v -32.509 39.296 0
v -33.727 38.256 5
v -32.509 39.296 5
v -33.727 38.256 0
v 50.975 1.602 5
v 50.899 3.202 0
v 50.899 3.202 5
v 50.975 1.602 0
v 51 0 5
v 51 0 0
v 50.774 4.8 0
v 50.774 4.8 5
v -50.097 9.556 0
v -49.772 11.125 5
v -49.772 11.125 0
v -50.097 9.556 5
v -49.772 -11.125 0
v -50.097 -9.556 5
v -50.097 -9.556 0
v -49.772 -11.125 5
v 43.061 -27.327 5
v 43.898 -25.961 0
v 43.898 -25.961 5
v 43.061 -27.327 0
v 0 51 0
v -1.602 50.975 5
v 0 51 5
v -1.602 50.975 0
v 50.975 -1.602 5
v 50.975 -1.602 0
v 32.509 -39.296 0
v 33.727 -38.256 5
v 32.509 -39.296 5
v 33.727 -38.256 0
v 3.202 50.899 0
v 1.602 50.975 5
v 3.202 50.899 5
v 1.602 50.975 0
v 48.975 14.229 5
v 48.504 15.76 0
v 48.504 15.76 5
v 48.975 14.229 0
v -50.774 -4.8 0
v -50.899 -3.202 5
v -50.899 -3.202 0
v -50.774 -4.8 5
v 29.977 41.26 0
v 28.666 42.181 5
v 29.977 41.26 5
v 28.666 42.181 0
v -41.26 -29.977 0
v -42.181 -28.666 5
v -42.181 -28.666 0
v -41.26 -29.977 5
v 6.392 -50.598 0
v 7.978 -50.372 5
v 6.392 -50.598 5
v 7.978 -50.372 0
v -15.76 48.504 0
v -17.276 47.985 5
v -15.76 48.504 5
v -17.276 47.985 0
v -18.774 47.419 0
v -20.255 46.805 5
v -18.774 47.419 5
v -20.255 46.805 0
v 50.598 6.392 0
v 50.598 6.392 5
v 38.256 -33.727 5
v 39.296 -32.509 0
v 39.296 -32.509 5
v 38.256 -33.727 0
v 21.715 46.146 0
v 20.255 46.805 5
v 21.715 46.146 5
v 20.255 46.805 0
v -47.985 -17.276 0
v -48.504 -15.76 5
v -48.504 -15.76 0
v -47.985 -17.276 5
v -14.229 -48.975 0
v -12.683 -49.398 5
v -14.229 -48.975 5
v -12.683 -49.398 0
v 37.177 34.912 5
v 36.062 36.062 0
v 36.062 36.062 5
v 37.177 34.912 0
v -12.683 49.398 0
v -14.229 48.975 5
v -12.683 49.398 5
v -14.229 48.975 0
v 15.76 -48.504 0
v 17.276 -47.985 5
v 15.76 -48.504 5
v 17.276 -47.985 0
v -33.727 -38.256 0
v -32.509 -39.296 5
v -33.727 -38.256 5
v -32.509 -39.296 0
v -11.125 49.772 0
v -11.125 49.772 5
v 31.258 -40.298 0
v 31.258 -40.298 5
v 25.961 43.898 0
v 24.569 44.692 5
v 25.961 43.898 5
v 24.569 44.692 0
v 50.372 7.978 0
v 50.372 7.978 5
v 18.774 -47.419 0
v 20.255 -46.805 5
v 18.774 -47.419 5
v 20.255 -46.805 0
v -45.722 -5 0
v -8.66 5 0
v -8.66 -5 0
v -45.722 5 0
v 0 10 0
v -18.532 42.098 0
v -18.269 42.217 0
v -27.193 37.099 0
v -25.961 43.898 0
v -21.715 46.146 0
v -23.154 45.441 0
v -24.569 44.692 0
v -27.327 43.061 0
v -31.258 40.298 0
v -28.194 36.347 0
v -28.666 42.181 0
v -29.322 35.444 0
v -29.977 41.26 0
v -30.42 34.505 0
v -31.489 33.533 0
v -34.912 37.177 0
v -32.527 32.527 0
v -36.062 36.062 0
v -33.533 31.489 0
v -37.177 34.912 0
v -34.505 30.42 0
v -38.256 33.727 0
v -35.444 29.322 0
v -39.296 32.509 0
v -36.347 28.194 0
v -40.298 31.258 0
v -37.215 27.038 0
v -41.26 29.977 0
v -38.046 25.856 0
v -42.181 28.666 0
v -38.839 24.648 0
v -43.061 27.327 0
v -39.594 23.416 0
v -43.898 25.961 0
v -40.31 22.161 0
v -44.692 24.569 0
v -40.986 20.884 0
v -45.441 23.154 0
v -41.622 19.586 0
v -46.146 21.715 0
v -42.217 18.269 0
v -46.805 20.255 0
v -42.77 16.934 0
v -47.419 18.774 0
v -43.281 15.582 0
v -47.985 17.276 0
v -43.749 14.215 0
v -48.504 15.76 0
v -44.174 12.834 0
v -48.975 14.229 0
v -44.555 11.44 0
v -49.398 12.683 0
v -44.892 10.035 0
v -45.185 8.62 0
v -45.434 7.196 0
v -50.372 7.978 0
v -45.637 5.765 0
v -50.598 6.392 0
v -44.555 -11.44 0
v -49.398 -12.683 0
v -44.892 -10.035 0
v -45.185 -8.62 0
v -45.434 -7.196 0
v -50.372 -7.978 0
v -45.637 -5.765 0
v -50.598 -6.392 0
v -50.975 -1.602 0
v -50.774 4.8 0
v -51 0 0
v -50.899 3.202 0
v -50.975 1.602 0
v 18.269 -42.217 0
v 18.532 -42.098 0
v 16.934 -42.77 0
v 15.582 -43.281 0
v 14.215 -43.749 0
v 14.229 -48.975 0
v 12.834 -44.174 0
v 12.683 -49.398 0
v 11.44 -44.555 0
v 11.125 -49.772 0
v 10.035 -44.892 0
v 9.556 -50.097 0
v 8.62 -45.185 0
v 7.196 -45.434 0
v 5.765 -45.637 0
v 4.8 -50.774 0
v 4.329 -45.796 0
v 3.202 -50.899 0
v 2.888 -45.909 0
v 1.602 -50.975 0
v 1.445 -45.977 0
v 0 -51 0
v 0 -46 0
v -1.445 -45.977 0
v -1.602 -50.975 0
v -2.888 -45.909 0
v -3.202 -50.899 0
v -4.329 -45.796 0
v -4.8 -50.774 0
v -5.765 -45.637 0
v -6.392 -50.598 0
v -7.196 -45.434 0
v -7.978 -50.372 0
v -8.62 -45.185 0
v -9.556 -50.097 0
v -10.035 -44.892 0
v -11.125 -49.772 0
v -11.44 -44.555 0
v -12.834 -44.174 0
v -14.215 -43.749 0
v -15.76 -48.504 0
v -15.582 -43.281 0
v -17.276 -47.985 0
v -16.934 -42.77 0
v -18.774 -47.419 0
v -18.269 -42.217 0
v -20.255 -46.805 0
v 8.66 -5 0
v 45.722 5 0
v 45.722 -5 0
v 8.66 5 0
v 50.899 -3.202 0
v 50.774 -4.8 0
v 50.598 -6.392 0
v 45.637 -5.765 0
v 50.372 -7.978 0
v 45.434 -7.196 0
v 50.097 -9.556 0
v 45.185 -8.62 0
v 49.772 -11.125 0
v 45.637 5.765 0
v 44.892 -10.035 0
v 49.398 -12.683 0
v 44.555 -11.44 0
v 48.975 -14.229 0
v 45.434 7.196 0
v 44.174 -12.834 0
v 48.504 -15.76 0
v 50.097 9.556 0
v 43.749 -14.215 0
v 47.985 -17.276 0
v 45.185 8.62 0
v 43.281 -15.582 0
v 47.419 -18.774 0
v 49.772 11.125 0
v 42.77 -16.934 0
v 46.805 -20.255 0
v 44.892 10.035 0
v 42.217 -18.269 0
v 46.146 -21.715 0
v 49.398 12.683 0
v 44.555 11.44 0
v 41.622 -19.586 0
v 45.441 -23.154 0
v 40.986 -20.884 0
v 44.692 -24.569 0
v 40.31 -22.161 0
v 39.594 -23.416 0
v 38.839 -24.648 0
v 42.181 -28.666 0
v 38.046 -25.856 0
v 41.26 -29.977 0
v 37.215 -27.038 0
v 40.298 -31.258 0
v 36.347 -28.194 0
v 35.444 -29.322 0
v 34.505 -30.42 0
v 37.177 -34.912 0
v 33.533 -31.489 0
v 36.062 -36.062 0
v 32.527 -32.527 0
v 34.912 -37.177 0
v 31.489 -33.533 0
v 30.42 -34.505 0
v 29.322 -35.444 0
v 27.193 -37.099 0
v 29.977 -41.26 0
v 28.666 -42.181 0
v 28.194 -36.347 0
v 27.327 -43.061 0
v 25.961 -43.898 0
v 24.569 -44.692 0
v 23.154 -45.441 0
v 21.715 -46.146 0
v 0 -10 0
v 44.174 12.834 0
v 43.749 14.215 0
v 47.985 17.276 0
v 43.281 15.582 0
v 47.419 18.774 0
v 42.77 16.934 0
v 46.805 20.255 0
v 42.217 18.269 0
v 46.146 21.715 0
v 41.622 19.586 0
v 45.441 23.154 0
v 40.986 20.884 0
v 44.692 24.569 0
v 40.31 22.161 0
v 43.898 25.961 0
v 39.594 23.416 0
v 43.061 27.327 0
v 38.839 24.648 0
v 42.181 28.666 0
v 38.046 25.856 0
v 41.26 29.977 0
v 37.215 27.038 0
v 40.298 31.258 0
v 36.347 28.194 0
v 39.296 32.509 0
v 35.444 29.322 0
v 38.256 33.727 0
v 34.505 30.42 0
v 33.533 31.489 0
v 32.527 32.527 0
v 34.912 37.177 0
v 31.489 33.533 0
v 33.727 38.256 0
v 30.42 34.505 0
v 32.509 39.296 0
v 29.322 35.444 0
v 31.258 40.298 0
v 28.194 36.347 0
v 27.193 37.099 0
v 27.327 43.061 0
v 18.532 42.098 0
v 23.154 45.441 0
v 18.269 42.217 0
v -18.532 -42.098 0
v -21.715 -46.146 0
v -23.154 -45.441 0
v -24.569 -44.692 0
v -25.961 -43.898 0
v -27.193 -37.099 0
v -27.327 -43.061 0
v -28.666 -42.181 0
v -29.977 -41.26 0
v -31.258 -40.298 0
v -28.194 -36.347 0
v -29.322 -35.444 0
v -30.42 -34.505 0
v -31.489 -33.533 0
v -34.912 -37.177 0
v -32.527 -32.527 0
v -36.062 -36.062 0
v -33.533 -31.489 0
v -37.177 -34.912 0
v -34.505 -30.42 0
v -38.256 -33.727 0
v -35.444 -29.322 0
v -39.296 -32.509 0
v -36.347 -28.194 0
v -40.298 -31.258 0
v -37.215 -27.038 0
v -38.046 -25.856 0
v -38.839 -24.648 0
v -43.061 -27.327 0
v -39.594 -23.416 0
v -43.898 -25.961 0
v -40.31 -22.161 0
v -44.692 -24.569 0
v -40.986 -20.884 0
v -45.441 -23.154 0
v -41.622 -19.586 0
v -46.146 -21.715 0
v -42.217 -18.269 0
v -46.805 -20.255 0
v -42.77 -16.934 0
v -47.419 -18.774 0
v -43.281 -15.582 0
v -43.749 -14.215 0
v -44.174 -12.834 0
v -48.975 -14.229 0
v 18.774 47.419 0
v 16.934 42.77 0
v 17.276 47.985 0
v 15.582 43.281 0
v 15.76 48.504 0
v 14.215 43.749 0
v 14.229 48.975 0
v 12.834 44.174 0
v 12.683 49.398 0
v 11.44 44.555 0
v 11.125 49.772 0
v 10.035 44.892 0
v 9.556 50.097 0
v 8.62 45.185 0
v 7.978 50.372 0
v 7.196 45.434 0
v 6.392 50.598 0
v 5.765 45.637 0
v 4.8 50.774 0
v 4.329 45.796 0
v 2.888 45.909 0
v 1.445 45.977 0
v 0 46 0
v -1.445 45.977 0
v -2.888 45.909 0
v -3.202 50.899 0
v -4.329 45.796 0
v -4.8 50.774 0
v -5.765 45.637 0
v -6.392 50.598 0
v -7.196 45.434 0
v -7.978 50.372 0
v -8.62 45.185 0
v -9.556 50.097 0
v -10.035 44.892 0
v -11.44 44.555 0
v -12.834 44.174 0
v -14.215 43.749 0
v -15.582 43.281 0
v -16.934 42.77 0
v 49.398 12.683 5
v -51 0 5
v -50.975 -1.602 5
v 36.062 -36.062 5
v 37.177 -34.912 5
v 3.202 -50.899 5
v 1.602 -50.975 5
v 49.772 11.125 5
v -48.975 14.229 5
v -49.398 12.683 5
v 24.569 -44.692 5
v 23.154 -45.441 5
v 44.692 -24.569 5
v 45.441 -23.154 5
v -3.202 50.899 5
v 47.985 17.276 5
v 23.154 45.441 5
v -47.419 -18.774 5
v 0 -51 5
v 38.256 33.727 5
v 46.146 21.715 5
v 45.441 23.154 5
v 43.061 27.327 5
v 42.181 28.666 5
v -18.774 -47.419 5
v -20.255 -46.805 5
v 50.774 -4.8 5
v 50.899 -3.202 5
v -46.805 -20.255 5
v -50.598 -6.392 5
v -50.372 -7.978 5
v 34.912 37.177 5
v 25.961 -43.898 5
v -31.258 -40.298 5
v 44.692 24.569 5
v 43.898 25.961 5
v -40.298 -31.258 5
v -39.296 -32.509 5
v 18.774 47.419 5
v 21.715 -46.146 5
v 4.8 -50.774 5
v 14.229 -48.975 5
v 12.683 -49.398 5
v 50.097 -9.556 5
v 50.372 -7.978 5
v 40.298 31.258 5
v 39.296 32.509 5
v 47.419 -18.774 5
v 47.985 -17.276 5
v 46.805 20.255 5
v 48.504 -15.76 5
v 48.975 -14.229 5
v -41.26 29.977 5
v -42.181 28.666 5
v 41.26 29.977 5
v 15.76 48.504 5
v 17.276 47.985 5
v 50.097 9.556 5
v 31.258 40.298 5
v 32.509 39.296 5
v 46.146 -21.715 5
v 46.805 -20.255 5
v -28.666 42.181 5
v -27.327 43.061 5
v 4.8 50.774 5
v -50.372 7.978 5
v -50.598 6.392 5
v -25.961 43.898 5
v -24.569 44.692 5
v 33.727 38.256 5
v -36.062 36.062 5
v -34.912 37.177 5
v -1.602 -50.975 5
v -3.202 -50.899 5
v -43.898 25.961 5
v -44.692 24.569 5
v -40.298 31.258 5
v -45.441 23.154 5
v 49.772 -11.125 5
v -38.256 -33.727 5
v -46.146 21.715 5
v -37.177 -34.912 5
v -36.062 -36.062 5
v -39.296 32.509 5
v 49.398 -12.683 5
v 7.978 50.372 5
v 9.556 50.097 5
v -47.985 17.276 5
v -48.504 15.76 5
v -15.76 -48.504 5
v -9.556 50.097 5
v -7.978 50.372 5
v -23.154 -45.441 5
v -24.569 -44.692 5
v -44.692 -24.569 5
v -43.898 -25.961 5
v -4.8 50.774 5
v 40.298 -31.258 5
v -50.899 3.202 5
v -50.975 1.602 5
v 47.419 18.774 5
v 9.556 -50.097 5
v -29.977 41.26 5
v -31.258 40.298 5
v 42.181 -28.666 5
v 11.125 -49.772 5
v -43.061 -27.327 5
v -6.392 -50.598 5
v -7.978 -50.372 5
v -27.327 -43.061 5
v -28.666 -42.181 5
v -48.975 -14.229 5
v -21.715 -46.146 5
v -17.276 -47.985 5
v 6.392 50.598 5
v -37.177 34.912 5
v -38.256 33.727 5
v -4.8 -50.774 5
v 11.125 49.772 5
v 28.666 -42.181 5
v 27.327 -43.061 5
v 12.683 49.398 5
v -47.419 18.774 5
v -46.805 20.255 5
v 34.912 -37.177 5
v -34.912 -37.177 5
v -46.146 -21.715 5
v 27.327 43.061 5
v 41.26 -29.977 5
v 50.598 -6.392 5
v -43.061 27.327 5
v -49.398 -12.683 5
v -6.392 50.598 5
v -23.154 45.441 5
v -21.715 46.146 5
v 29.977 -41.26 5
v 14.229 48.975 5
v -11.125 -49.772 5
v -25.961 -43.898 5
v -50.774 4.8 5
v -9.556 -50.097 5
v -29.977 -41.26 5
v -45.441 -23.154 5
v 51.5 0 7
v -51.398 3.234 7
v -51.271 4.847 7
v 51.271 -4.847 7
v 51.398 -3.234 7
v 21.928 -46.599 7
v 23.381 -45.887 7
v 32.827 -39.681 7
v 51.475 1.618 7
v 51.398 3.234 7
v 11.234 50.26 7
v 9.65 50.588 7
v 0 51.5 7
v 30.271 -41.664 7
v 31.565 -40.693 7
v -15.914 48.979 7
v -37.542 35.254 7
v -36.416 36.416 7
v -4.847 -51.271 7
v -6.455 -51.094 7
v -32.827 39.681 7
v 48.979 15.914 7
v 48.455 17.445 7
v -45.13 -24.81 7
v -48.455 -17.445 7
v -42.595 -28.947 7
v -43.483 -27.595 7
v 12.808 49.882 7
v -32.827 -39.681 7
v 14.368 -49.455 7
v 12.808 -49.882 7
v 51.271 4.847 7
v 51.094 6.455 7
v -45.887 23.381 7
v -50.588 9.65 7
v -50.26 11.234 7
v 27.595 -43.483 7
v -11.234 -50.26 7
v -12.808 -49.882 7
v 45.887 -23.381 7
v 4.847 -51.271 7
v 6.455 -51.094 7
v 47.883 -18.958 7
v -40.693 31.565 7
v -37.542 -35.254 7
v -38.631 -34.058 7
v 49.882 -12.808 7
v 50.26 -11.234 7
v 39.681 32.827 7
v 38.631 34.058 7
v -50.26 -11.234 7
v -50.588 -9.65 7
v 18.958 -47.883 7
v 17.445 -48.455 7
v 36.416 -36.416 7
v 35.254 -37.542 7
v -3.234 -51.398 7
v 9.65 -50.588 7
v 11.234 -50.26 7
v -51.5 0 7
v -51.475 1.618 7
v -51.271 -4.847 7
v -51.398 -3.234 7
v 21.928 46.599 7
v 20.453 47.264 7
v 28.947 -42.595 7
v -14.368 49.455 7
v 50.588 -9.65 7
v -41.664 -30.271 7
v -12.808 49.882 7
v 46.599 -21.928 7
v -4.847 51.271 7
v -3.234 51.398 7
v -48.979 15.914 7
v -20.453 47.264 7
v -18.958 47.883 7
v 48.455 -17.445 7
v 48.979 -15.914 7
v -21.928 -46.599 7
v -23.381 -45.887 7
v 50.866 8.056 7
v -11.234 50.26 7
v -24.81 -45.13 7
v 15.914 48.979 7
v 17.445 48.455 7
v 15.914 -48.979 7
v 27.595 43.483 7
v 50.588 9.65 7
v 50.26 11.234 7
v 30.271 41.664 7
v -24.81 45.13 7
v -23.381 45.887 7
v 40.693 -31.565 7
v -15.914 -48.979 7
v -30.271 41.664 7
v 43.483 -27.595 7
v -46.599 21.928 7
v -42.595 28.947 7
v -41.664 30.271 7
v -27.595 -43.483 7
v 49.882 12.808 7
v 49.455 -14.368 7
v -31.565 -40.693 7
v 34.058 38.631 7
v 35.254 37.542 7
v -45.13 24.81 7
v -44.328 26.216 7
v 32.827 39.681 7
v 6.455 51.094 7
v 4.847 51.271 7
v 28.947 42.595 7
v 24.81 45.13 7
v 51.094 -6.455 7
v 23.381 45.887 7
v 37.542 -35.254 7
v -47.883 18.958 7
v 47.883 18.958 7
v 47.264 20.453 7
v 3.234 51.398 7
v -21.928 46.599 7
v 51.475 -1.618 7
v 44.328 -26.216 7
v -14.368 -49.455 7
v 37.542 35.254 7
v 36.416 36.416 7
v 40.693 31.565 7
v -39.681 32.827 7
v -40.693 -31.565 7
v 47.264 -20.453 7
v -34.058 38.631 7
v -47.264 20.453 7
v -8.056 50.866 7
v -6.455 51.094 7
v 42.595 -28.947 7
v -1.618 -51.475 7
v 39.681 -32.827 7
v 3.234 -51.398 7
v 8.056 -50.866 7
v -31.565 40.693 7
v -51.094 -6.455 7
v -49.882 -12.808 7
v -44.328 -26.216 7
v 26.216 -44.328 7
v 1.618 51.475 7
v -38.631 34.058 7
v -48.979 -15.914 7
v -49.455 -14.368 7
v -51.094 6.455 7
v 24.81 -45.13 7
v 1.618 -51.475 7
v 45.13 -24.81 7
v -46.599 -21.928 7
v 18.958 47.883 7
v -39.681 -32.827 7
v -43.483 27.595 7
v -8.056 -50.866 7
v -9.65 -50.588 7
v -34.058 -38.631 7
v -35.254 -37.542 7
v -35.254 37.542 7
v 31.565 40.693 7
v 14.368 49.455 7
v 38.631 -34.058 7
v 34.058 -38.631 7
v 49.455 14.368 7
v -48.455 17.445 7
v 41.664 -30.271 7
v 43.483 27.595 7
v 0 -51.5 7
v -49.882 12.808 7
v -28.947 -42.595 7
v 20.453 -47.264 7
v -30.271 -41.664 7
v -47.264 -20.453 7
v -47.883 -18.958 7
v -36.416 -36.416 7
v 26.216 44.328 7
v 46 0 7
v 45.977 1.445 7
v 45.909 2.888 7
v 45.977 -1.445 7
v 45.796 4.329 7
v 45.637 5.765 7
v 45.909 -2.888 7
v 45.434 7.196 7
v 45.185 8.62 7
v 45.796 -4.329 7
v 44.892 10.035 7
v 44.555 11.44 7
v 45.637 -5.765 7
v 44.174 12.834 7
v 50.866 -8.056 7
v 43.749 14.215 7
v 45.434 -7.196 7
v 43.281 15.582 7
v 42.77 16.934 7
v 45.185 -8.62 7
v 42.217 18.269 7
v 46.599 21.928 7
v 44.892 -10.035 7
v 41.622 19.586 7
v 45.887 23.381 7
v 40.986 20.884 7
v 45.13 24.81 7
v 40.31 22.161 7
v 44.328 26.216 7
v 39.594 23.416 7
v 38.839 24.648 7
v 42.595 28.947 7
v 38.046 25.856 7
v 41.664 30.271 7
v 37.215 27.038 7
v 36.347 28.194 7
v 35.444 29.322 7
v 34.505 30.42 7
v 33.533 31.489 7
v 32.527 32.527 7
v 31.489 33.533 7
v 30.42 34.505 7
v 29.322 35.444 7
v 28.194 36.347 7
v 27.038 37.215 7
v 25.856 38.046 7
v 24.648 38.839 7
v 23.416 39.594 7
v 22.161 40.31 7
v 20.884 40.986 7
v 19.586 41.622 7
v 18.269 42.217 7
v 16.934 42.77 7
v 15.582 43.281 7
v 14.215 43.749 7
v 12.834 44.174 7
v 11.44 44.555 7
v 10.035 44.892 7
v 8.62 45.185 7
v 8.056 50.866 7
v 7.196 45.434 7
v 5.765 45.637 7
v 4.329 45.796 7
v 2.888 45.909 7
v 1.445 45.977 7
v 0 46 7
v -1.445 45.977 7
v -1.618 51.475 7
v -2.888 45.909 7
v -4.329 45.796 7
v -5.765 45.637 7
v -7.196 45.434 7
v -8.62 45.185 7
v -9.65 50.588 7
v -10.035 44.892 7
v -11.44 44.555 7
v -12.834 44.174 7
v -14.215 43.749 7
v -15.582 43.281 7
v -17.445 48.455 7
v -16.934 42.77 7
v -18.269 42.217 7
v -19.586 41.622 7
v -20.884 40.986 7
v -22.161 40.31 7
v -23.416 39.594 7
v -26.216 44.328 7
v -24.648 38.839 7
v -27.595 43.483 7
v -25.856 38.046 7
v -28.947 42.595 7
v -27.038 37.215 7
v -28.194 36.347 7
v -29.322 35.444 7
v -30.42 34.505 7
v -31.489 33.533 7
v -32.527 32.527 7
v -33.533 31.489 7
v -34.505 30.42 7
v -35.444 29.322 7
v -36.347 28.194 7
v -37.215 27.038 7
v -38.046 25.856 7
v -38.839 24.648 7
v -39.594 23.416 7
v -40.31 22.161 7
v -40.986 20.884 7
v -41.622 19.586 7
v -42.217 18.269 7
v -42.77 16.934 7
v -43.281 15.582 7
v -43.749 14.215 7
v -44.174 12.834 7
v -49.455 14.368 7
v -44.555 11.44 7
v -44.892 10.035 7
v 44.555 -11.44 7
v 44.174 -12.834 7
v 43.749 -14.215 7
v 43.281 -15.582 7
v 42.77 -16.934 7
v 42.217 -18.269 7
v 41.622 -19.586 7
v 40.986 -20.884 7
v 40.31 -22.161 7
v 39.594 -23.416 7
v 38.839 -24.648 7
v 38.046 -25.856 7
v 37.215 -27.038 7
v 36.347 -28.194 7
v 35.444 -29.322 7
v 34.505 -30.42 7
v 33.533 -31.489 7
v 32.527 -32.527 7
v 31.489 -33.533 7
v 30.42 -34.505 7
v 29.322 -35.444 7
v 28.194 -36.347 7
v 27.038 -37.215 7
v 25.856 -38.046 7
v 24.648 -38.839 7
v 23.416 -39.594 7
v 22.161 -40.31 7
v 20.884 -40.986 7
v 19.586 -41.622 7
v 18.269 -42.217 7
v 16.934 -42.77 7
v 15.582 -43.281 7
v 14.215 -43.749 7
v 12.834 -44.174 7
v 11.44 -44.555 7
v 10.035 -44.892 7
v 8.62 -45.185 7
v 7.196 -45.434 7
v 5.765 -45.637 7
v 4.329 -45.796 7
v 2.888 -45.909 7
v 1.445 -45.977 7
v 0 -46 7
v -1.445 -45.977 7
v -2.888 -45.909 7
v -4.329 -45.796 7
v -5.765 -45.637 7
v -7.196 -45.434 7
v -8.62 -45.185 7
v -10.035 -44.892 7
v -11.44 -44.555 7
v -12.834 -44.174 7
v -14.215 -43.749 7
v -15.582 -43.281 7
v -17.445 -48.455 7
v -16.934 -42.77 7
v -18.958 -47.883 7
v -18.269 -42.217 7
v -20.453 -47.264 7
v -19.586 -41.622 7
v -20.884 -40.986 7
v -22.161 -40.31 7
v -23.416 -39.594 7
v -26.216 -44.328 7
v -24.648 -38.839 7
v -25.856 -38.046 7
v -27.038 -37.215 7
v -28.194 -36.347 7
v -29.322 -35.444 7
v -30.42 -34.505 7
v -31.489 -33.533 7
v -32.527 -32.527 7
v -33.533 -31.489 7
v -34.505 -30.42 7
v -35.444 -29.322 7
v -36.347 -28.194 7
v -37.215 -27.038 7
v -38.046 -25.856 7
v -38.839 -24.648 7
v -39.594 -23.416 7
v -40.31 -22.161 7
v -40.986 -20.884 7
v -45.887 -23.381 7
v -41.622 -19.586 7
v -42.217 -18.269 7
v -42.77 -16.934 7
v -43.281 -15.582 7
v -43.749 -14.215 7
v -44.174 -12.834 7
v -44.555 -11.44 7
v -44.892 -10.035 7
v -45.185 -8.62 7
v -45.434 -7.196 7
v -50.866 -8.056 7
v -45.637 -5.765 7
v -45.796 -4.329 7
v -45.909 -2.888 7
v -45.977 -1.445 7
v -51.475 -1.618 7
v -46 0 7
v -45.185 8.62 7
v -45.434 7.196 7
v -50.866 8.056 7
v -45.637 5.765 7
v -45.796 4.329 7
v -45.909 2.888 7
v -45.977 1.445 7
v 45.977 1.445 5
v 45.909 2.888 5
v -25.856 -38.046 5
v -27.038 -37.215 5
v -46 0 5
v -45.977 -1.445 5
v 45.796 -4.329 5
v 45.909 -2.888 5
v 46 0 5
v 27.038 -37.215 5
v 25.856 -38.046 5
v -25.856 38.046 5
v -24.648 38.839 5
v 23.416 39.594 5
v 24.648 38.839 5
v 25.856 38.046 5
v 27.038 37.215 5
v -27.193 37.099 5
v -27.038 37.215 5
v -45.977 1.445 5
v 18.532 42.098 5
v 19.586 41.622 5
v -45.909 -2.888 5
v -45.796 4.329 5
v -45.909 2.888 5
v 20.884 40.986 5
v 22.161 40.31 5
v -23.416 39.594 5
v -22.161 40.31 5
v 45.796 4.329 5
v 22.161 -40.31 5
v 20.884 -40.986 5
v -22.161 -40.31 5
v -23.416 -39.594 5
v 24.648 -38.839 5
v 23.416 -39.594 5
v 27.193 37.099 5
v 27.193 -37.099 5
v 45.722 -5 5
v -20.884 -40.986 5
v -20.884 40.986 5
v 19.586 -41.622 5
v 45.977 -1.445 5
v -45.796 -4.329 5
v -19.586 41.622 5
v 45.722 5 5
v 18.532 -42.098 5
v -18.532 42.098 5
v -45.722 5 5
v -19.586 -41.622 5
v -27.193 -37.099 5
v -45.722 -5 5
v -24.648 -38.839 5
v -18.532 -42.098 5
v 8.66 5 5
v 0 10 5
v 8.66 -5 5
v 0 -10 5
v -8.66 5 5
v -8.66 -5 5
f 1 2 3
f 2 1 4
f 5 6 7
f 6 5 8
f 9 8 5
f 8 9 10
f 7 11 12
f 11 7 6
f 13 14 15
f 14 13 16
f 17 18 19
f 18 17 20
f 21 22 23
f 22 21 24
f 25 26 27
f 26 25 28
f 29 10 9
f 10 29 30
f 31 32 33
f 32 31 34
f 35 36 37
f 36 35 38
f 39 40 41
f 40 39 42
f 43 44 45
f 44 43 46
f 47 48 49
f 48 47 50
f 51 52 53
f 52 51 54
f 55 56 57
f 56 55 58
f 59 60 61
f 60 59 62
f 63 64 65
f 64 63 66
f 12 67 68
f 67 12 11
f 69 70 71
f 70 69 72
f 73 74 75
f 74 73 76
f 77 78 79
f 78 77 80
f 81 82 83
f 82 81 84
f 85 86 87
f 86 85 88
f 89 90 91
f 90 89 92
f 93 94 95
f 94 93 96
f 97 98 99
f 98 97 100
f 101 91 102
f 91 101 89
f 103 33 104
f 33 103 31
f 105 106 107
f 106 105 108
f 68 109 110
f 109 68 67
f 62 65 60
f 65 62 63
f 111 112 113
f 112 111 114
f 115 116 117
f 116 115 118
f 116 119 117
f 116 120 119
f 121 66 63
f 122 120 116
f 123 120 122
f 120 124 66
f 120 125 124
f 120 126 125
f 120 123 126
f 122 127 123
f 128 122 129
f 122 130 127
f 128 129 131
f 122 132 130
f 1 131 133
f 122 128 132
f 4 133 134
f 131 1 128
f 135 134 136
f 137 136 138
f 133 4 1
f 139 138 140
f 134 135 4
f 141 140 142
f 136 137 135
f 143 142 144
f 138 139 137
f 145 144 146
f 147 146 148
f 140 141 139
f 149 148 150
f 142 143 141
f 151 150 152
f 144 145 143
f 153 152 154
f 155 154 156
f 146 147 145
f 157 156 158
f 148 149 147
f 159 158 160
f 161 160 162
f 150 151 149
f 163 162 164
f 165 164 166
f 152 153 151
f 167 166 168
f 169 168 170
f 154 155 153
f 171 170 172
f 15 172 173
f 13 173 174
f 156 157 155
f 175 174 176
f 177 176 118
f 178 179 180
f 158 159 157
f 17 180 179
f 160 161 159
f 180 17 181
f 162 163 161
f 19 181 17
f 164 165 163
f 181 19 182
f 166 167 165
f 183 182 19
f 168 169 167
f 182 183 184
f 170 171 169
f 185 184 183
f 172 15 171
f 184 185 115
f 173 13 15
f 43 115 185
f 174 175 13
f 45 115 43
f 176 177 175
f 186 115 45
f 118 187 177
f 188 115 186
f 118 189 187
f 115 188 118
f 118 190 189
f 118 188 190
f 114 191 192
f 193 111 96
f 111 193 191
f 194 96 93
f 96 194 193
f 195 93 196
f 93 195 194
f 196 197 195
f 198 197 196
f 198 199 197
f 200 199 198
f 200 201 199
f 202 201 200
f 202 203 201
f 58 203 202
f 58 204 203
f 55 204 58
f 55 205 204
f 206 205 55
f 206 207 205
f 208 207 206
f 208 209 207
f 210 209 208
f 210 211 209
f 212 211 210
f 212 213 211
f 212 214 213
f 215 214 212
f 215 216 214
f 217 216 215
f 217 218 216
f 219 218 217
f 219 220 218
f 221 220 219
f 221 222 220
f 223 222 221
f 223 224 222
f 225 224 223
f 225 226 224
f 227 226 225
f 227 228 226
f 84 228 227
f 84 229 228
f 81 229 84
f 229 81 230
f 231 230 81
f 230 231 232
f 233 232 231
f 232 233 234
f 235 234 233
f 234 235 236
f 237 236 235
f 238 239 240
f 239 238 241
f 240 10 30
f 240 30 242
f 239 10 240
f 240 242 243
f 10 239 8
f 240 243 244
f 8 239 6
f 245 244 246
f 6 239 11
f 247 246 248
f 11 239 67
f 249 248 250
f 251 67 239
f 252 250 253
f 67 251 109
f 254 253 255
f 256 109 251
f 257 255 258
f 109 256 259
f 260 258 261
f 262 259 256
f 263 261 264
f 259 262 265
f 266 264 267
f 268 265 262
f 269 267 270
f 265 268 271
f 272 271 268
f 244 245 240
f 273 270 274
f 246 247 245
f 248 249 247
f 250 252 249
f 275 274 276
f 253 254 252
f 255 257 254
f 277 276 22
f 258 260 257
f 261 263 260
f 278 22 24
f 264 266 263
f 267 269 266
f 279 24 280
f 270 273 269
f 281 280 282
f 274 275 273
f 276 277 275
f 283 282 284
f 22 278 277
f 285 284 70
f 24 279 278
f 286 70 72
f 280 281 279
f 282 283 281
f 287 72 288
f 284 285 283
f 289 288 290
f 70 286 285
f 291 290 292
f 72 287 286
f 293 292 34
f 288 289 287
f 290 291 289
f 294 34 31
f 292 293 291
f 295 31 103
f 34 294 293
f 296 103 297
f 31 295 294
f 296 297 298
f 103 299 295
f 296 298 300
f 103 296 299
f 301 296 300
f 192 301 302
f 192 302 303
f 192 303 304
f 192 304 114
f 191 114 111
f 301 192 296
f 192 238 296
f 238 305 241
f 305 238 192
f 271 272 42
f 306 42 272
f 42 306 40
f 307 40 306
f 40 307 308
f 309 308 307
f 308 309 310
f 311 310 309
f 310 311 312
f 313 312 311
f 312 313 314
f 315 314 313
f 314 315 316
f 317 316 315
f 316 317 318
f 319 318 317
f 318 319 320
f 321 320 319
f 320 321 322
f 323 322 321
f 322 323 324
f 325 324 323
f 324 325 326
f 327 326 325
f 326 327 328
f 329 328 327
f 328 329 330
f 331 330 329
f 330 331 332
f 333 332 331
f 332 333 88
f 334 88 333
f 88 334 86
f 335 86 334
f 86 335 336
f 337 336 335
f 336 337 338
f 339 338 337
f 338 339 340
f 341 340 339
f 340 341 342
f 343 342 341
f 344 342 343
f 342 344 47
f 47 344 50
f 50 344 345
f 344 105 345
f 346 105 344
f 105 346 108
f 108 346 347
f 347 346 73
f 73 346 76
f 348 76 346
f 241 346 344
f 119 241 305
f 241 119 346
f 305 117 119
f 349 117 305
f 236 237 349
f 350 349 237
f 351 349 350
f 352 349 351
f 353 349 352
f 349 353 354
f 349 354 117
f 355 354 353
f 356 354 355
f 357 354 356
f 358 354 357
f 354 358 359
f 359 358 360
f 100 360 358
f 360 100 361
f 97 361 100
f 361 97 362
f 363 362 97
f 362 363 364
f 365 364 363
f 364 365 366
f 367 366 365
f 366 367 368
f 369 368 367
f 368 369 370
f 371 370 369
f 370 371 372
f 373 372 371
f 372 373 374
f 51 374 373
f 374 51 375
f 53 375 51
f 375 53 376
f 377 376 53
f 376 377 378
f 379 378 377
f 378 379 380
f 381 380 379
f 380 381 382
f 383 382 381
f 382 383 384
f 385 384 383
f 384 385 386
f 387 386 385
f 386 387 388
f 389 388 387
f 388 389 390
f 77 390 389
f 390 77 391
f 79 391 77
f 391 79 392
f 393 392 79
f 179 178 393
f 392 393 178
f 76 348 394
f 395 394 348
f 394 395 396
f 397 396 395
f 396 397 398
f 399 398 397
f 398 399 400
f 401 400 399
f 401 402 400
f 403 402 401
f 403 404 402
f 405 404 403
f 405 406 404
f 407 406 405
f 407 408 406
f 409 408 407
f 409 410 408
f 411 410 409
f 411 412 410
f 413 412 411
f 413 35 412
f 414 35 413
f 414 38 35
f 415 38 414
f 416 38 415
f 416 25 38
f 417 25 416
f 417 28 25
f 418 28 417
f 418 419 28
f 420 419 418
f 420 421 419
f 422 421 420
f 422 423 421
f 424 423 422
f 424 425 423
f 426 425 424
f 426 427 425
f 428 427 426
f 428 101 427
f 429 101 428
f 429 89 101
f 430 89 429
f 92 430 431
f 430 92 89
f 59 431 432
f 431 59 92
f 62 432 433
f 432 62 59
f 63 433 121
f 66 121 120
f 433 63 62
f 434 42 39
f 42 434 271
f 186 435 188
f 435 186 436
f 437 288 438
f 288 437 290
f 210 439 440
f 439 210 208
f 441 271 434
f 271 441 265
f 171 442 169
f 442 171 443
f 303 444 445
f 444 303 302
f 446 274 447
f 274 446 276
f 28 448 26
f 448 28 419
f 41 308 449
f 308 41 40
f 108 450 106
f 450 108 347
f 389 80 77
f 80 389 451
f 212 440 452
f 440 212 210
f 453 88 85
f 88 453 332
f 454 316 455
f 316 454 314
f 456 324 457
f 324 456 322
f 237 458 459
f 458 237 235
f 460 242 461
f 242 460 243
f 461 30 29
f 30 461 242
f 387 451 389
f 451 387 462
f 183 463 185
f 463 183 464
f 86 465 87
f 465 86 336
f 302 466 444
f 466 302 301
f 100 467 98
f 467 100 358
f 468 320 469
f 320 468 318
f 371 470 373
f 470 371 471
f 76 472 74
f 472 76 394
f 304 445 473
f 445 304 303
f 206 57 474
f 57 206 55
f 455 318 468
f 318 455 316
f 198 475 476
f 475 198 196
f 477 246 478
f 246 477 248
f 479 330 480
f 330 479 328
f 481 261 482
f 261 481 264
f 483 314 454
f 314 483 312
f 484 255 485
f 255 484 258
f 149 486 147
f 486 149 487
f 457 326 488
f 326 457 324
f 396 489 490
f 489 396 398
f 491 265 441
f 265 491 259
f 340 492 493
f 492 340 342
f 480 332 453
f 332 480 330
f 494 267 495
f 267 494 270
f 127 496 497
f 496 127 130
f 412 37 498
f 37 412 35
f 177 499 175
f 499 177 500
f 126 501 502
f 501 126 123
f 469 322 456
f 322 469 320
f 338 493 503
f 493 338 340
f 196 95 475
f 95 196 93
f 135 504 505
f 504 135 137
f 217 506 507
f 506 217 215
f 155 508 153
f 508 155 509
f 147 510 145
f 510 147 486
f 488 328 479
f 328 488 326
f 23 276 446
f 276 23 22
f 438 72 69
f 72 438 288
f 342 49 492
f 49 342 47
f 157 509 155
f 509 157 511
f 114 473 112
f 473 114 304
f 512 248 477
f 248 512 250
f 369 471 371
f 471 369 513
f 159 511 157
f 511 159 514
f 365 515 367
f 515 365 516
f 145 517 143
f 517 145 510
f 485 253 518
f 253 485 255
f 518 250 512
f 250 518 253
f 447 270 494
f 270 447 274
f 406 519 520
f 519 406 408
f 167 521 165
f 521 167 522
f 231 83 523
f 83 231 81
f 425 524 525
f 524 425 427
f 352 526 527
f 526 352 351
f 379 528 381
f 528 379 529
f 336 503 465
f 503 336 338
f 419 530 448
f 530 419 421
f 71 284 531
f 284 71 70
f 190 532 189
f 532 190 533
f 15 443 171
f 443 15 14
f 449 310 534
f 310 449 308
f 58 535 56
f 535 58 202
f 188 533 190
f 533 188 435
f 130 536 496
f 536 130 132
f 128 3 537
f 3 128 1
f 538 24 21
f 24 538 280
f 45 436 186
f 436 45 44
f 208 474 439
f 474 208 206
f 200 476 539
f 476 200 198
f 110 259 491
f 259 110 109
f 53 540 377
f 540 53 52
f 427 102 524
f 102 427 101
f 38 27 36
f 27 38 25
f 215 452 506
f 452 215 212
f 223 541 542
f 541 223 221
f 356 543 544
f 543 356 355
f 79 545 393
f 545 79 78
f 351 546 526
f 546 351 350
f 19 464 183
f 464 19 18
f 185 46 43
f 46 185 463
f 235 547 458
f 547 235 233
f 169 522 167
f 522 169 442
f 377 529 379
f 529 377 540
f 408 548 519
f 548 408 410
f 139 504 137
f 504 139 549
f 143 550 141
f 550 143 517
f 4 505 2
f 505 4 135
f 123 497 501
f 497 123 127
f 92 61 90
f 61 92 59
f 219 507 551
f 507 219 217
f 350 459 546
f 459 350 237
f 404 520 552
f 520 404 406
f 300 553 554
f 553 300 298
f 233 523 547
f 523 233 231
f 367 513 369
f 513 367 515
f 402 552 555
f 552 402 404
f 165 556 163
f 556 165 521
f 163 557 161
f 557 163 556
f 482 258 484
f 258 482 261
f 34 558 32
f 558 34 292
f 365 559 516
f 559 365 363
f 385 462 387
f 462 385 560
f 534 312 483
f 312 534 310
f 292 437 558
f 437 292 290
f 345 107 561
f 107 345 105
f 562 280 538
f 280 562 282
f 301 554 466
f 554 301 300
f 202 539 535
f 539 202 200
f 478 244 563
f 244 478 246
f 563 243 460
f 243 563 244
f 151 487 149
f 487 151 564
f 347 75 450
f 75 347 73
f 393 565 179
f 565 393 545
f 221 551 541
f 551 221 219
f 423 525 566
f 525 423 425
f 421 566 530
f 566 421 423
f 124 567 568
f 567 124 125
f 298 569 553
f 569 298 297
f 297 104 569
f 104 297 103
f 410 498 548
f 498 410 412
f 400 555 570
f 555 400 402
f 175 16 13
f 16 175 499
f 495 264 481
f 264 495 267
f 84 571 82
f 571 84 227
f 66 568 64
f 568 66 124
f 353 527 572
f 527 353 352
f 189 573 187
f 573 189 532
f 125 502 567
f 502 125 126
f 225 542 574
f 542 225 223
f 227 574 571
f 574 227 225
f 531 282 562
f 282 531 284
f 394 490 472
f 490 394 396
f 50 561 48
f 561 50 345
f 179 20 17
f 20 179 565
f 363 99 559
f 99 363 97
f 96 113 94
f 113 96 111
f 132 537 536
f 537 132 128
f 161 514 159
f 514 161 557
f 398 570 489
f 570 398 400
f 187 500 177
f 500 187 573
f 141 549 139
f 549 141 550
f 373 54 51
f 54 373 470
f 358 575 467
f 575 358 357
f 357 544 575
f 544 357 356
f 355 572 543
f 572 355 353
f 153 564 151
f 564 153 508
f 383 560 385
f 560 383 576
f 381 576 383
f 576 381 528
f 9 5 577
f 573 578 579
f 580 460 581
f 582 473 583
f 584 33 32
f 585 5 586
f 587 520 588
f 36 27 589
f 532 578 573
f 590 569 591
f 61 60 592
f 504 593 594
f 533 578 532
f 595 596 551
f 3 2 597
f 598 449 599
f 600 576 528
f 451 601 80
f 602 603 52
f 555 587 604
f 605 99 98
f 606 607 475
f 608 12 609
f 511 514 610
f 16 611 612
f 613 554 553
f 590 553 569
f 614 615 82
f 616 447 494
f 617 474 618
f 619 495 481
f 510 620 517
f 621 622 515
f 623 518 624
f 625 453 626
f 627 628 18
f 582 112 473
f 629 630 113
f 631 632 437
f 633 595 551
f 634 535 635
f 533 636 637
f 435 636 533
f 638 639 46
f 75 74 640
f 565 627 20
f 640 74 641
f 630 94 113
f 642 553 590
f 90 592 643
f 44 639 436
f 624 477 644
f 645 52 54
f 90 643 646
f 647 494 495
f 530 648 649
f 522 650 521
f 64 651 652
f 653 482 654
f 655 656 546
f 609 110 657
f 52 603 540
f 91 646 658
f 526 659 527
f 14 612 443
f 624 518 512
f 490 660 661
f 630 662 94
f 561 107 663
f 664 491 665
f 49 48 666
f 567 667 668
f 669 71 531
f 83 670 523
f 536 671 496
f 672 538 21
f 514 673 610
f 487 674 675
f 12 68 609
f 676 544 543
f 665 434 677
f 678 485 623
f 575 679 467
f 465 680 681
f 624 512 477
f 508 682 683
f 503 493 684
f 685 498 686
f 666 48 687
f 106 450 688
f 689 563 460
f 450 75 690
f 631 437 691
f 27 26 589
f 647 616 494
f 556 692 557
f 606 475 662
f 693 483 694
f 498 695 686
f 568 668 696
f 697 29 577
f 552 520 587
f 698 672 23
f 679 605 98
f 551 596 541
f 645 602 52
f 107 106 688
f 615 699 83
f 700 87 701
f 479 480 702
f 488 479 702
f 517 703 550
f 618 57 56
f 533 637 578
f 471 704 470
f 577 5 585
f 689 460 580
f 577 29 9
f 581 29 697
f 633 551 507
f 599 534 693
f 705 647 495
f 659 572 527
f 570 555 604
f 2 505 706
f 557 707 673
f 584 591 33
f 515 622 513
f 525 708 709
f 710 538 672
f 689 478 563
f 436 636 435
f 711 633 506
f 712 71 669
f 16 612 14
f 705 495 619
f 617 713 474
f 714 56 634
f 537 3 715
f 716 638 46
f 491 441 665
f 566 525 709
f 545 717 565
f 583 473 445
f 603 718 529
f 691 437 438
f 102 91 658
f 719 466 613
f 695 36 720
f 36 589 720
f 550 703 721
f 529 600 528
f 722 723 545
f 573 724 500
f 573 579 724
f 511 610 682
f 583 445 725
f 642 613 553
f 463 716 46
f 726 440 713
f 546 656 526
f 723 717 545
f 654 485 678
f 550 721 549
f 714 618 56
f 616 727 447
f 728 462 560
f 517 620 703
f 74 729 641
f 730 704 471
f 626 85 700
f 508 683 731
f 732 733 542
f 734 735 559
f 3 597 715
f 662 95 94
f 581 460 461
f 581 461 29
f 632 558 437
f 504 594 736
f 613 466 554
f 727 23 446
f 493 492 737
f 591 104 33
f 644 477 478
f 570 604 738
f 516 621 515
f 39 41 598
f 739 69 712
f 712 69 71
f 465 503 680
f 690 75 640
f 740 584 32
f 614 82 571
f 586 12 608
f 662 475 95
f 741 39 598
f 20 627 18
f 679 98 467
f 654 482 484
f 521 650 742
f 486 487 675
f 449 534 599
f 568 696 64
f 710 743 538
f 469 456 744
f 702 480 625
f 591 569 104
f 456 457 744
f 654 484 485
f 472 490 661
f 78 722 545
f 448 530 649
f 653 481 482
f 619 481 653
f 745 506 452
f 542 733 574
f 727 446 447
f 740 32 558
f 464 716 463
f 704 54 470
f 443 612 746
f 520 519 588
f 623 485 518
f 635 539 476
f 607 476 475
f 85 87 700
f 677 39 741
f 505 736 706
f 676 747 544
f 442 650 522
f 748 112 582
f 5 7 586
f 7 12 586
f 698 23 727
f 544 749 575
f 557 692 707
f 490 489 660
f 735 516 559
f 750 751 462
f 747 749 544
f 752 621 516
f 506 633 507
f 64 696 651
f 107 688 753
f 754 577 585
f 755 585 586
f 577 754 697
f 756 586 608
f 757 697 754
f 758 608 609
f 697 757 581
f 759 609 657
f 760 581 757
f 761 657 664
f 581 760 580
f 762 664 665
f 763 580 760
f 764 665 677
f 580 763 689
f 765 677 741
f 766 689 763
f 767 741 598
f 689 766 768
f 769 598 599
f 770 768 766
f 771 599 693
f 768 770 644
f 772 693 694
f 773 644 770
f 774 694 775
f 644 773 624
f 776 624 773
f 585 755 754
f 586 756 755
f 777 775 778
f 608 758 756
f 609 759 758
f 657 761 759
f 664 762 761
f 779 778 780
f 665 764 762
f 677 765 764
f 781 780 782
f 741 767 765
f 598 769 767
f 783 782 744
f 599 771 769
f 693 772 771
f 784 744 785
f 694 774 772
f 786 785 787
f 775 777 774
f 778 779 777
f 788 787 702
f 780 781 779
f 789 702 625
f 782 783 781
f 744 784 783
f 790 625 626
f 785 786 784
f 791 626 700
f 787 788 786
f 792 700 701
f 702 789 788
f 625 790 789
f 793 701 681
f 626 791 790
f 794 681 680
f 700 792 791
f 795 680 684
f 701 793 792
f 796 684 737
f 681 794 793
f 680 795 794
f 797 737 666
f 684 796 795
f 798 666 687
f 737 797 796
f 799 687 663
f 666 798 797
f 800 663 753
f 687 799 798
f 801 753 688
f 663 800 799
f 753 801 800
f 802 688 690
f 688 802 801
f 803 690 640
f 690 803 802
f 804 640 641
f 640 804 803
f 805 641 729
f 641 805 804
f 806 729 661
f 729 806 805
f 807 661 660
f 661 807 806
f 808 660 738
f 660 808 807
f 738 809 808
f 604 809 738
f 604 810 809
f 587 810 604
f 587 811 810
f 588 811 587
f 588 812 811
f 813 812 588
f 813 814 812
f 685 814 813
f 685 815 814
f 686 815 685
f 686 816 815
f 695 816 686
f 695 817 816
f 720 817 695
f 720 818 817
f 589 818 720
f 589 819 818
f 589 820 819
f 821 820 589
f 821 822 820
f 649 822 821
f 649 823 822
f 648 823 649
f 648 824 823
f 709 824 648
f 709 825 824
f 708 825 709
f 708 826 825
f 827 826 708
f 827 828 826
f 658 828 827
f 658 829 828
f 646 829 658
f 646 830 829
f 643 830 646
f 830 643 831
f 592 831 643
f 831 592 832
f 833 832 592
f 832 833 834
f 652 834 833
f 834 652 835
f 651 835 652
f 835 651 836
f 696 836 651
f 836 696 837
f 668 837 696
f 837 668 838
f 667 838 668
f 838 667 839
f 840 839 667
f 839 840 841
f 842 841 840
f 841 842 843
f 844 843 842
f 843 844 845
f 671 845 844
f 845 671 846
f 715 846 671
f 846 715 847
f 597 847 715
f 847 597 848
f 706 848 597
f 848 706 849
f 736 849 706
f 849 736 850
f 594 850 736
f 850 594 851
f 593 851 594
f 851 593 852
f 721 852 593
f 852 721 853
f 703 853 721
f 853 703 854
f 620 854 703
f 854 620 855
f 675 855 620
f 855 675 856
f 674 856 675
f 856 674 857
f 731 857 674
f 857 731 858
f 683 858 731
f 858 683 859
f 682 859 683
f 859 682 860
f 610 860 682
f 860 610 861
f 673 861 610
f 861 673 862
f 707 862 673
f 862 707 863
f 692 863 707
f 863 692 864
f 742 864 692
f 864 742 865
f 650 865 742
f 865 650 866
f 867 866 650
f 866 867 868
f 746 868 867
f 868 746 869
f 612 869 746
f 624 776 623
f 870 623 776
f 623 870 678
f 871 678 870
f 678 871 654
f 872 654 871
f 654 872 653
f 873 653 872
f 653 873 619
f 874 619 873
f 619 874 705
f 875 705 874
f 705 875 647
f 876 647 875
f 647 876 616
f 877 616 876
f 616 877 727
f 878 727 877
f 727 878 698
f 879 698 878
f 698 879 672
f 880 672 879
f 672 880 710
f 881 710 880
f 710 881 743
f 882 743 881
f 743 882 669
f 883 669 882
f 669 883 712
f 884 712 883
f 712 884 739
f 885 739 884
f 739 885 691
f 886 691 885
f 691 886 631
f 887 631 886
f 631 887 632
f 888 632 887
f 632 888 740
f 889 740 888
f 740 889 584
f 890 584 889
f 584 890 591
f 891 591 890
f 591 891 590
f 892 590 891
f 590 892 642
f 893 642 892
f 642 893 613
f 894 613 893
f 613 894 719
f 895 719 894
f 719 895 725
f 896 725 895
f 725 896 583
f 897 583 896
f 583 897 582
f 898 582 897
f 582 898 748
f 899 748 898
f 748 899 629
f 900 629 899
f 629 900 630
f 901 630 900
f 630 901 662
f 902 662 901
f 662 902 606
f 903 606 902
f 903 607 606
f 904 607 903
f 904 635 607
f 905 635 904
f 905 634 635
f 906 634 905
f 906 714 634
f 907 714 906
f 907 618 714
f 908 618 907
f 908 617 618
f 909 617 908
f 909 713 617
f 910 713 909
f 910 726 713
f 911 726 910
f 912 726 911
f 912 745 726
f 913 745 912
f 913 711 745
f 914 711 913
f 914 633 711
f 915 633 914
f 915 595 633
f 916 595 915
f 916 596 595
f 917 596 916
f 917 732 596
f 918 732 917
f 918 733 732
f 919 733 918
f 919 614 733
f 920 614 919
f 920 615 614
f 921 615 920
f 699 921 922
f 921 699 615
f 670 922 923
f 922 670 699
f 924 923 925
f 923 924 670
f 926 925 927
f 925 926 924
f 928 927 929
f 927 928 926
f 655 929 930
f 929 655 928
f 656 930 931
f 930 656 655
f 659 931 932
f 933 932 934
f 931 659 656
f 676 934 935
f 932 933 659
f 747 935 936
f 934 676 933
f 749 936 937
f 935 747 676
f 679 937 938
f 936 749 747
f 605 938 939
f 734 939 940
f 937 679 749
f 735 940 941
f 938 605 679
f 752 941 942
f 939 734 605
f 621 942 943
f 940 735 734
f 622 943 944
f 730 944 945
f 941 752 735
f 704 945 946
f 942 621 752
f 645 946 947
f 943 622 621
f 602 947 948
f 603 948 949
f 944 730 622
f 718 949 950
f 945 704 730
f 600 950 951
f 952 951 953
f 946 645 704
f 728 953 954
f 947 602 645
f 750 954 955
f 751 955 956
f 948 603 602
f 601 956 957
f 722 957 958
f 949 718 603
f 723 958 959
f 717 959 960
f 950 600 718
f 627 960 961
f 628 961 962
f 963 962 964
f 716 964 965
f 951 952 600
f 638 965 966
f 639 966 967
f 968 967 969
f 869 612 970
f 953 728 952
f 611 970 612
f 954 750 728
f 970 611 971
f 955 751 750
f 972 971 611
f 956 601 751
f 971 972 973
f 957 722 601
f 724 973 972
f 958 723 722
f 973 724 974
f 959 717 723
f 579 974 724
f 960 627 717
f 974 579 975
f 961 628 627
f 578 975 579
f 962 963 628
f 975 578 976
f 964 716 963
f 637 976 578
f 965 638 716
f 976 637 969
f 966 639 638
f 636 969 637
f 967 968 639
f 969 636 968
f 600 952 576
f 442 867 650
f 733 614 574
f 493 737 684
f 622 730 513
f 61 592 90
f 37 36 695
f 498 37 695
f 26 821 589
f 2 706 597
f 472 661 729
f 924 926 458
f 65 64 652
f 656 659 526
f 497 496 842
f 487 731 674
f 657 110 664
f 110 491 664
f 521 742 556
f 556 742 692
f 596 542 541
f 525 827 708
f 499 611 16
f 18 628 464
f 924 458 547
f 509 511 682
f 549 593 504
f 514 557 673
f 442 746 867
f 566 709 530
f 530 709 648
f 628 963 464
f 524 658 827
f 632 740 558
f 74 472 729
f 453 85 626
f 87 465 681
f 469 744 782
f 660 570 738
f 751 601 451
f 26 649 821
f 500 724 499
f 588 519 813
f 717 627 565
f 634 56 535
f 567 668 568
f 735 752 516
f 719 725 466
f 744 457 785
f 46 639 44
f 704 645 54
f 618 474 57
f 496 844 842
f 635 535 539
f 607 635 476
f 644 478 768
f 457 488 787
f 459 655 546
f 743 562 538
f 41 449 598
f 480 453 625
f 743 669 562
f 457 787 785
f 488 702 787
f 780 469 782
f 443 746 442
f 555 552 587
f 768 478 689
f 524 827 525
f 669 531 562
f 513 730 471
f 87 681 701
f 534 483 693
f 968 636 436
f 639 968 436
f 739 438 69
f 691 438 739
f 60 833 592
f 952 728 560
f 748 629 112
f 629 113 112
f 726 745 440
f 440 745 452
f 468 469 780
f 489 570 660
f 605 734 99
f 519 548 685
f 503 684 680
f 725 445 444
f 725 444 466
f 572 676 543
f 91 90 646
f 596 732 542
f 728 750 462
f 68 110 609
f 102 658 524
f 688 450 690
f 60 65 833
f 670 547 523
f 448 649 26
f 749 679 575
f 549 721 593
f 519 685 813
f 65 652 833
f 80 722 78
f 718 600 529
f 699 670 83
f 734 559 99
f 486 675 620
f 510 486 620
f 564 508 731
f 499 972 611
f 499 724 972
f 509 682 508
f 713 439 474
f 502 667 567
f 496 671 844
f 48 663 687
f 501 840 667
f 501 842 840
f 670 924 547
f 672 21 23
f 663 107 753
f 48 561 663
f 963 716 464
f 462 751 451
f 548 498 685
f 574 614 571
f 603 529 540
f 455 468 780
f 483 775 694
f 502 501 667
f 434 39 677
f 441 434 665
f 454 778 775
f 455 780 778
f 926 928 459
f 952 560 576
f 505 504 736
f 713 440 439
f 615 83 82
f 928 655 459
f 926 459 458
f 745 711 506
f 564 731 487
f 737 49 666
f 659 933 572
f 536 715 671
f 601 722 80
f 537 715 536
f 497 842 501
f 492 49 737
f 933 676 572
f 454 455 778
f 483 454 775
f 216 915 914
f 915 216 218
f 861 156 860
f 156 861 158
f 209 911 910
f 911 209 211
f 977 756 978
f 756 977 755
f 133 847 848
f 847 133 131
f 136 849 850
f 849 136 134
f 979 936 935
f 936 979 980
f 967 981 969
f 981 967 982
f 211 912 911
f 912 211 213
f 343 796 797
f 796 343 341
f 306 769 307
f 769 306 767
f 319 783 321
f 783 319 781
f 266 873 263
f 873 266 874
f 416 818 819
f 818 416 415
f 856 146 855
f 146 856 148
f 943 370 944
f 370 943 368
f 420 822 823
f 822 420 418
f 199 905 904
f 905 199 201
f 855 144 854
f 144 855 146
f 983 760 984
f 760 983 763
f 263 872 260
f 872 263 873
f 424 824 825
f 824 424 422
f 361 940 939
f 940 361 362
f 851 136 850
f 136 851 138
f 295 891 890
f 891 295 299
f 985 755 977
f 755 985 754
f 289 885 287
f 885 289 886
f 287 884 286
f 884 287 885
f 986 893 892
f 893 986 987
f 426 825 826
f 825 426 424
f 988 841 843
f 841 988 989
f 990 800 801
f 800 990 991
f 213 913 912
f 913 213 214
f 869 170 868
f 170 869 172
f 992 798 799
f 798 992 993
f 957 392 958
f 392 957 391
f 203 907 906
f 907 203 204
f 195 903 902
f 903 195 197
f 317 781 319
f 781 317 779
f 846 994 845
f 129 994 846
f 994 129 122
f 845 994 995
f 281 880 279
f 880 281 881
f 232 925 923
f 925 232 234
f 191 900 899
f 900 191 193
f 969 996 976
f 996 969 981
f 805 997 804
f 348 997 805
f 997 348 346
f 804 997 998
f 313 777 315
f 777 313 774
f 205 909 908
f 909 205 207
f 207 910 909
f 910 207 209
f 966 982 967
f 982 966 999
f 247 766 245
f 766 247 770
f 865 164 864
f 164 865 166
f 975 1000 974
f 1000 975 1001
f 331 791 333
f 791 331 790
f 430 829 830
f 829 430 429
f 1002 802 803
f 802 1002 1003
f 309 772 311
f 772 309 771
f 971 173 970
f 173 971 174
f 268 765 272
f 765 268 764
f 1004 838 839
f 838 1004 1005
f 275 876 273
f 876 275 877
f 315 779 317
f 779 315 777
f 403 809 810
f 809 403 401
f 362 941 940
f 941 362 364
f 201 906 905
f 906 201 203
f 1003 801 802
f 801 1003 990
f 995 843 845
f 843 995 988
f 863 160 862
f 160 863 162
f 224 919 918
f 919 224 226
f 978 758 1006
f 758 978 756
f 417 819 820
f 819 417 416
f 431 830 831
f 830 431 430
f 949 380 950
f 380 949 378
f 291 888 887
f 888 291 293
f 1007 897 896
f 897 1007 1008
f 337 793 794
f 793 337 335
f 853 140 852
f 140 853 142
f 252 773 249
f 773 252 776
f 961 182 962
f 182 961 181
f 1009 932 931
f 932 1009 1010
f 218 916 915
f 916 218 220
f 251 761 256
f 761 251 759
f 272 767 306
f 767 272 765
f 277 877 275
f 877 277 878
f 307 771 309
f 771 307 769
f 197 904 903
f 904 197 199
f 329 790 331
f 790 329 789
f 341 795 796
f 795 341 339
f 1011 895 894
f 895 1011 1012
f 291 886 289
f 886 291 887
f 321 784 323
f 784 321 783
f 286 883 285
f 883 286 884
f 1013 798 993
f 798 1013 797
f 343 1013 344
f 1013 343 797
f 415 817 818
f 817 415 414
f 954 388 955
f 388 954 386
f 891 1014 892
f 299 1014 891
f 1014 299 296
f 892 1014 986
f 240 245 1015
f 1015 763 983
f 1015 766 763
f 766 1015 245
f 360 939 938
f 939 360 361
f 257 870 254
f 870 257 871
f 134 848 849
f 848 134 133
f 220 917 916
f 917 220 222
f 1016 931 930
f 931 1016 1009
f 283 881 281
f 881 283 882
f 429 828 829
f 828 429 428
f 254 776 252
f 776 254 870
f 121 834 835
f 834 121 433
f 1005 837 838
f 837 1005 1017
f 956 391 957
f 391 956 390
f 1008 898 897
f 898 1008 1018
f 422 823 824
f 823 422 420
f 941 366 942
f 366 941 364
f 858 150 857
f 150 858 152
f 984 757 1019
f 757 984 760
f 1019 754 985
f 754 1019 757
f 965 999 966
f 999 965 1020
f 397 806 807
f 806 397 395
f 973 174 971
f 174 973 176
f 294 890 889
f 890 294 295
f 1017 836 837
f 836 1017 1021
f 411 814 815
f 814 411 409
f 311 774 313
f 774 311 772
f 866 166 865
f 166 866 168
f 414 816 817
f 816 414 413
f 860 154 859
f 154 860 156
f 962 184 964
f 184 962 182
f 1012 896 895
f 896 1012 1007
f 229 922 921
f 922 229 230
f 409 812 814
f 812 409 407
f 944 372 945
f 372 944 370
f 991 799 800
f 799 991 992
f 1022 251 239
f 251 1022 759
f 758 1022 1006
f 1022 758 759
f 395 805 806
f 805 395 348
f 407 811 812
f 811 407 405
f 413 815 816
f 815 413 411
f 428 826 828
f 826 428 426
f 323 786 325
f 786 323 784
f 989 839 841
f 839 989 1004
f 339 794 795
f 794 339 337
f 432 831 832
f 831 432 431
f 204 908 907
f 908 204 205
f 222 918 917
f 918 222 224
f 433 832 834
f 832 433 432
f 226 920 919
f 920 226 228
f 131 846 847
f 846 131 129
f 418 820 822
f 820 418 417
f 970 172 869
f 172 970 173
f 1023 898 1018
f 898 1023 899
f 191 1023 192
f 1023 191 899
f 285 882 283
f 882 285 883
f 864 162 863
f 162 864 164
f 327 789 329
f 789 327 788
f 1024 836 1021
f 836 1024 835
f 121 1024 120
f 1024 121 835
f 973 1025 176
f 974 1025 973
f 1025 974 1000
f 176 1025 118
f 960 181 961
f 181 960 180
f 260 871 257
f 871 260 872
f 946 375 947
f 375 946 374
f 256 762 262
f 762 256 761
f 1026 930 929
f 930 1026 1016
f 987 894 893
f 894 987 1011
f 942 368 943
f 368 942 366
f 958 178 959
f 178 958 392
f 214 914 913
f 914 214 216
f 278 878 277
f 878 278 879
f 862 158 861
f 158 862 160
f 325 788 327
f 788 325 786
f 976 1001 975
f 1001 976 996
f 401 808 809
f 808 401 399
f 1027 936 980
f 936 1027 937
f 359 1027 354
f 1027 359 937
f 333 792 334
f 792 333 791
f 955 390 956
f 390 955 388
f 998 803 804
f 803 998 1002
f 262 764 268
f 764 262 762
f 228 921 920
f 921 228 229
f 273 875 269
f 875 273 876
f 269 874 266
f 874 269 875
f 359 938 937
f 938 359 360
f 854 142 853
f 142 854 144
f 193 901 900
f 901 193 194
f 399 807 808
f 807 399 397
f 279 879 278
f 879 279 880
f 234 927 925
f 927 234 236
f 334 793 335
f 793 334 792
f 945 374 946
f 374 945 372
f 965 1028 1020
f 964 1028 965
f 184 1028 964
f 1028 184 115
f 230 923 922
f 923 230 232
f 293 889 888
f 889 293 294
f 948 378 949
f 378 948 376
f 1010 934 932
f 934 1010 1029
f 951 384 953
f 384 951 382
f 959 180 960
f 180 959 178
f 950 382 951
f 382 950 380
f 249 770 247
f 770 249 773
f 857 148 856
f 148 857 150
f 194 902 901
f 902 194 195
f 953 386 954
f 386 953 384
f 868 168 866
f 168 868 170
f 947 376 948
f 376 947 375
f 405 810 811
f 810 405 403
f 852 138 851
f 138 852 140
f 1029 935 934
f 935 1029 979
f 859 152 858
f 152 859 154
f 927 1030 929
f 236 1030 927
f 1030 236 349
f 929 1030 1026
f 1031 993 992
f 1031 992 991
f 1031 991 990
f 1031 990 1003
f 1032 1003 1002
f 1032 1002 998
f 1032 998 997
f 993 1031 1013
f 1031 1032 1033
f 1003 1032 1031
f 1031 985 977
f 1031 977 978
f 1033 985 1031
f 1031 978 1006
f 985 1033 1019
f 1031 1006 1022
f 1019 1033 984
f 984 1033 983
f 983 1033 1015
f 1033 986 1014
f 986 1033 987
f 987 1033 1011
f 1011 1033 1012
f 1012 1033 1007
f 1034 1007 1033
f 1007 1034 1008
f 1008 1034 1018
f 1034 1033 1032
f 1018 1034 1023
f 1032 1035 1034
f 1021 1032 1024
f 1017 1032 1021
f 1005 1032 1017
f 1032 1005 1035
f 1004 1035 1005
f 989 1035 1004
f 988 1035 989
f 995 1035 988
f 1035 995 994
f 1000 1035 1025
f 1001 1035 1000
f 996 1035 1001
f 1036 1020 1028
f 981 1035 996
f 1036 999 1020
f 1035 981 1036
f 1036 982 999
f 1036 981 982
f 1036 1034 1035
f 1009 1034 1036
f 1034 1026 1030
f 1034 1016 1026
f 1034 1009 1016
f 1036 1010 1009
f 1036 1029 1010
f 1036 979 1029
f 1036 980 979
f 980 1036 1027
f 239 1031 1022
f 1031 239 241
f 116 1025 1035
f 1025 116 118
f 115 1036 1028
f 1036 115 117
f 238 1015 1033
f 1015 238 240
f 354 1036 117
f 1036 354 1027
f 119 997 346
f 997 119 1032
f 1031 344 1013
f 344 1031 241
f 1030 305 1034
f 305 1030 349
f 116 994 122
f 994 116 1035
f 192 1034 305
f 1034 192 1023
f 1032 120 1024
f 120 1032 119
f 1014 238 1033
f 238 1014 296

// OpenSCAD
PIPE_DIAMETER_INNER = 102;

$fn = 200;

difference() {
    union() {
        cylinder(d=PIPE_DIAMETER_INNER, h=5);
        translate([0, 0, 5])
        cylinder(d1=PIPE_DIAMETER_INNER, d2=PIPE_DIAMETER_INNER+1, h=2);
    }
    
    cylinder(d=PIPE_DIAMETER_INNER-10, h=50, center=true);
}

for (i=[0:2])
    rotate([0, 0, i*60])
    translate([0, 0, 2.5])
    cube([PIPE_DIAMETER_INNER-5, 10, 5], center=true);
